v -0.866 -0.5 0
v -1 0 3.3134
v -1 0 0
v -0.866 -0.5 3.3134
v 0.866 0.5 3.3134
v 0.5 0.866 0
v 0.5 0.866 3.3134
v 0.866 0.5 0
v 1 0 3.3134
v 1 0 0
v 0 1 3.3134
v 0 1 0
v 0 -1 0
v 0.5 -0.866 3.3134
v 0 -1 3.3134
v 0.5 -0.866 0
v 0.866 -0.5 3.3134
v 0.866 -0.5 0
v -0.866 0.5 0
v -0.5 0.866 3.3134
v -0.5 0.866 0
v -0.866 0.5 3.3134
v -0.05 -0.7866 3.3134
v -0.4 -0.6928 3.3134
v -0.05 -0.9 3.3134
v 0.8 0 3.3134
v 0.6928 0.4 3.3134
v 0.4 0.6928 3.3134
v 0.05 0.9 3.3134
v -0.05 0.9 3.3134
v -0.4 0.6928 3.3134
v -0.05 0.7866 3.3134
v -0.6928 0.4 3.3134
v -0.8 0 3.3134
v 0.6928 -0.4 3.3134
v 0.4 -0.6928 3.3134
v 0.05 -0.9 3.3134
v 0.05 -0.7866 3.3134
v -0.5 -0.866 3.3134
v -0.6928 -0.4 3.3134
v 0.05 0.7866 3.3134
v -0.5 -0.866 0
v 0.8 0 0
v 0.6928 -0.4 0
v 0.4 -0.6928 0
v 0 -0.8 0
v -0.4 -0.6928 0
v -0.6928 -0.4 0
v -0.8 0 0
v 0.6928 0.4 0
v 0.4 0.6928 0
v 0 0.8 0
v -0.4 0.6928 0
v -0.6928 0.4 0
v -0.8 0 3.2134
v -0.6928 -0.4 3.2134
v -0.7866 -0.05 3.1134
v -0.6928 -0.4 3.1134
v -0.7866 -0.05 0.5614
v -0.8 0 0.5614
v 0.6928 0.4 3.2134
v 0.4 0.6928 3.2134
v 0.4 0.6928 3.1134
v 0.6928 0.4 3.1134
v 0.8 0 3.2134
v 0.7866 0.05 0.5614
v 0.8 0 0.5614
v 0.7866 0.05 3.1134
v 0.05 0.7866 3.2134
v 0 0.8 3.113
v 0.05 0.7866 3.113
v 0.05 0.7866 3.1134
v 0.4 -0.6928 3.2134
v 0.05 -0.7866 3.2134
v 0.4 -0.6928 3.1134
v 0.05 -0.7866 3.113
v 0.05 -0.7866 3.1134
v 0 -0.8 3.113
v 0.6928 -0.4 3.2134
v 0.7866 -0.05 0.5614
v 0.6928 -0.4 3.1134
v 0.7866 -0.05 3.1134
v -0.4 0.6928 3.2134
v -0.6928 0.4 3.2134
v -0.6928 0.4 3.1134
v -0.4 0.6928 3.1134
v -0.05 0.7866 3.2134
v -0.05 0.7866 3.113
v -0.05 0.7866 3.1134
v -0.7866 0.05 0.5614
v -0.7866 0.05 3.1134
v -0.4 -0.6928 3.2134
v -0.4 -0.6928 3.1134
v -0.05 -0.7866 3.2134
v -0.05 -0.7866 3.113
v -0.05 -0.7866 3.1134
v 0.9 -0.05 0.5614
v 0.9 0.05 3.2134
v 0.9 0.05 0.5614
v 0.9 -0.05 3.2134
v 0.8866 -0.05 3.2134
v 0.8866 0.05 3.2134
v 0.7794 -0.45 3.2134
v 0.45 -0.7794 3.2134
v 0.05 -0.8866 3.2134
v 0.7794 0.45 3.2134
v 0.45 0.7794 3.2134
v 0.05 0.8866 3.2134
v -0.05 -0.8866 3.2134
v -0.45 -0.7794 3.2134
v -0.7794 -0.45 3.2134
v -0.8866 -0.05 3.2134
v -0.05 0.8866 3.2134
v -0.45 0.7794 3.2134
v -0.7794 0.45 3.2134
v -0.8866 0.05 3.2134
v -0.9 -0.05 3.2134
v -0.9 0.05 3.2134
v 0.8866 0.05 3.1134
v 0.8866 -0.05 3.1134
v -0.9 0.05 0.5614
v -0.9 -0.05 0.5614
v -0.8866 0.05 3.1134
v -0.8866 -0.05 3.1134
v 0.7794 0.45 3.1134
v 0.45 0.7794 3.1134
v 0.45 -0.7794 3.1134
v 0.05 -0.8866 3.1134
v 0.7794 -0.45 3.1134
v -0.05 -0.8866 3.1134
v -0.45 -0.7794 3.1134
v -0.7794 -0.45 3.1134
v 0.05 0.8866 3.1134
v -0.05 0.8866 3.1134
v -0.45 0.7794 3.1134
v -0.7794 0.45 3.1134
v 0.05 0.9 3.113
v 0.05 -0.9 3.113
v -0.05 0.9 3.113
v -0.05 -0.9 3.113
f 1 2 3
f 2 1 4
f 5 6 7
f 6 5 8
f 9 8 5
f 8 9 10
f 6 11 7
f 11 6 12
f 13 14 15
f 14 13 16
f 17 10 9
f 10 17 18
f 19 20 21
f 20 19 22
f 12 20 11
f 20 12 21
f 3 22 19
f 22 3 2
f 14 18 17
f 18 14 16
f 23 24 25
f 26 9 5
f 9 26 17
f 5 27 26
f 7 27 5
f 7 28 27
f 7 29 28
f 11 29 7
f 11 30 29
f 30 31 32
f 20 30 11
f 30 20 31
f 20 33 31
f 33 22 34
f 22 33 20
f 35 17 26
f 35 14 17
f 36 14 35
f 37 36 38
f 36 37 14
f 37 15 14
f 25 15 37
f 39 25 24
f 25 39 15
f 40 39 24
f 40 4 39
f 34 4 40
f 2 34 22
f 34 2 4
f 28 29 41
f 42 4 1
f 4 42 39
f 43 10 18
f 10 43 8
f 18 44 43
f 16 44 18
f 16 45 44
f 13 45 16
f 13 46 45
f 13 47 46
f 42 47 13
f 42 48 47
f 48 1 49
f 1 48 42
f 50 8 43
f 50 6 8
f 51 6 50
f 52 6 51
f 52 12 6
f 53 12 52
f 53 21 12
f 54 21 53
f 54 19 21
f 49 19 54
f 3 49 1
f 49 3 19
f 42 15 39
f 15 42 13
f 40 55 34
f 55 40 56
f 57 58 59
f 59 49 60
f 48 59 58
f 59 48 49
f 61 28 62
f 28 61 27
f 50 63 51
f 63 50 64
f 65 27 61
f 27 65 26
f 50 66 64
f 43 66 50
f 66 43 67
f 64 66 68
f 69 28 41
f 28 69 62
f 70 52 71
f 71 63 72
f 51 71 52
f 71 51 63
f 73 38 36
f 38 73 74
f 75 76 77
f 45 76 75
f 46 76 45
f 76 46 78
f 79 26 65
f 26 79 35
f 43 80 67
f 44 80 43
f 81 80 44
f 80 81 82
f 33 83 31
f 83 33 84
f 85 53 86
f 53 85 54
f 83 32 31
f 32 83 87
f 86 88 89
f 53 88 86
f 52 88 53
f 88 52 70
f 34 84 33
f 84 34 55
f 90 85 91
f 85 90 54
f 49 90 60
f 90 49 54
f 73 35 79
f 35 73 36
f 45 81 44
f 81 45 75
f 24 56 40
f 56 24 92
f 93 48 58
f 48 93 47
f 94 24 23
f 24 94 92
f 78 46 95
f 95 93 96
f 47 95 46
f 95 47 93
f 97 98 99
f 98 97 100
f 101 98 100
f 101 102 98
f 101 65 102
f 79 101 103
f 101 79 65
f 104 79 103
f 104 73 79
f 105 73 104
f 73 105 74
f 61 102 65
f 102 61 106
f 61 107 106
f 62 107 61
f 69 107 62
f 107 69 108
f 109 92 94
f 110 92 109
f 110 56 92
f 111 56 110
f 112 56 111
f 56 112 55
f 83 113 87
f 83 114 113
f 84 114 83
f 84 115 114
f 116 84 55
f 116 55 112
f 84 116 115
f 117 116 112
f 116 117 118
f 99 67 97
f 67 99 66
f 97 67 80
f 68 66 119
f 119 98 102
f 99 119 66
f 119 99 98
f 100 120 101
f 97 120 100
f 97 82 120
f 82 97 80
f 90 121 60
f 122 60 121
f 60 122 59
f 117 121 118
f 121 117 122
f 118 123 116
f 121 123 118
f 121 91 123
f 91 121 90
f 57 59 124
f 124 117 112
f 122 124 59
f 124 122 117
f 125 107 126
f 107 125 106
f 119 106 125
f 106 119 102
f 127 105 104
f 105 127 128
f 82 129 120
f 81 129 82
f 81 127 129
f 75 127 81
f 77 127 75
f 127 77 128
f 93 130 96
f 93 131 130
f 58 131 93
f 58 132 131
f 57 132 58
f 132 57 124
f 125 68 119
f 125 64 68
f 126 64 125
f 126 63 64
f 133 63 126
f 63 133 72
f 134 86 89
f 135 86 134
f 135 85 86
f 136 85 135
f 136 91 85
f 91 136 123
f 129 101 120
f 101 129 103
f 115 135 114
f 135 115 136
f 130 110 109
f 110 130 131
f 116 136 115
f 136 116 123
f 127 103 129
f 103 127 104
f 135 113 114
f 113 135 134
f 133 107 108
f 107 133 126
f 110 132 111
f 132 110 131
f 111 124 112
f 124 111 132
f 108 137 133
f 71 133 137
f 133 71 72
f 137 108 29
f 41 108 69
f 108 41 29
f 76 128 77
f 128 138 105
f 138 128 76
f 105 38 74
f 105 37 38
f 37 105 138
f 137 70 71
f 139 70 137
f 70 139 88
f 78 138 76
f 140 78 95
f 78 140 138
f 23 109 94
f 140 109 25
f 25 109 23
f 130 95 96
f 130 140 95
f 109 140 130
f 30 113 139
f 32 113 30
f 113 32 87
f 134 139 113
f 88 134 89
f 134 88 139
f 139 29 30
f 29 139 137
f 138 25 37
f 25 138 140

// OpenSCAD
tolerance=0.075;
hole_radius=0.05;
grid_hole_radius=0.05;
outer_radius=1;
thickness=0.2;
hole_attach_height=0.05;
compressed_height=3.3134;
extended_height=5.8654;
next_hole_radius=0.05;
next_hole_attach_height=0.05;
next_inner=0.8;
hole_twist=0.0;
//other params
eps = tolerance/100;
rail_attach_height = grid_hole_radius + hole_attach_height;
inner_radius = outer_radius - thickness;
rail_attach_width = rail_attach_height;
fn = 12;
fnh = 6;

module angled_cylinder(angle_deg_y, _h, _r, angle_deg_x = 0) {
    rotate([angle_deg_x, angle_deg_y, 0]) { // Rotate the cylinder 
            cylinder(h = _h, r = _r, center = true, $fn = fnh);
        }
}

module hole(_h) {
    cylinder(h = _h, r = grid_hole_radius, $fn = fnh);
}

//makes circle of holes
module circular_grid(_h, _r, _n) {
    for (i = [0:_n-1]) {
        angle = i * 360 / _n;
        x_pos = _r * cos(angle);
        y_pos = _r * sin(angle);
        translate([x_pos, y_pos, -eps]) {
            hole(_h);
        }
    }
}

//makes grid of holes
module hole_grid(hole_height, grid_h) {
    translate([0,0,hole_height]) {
        difference() {
            //cylinder
            cylinder(h = grid_h, r = (inner_radius + outer_radius)/2, 
                center=false, $fn = fn);
            //holes
            for (i = [0 : grid_hole_radius * 2 + hole_attach_height : inner_radius - grid_hole_radius * 2]) {
                circular_grid(grid_h + eps*2, i, ceil(6.28*i/(grid_hole_radius*4)));
            }
            
        } 
    }
}

module bottom_joint() {
    out_hole_angle = 60;

    //grid of holes
    //hole_grid(hole_radius*2 + hole_attach_height * 2, grid_hole_radius);
   
    difference() {
        //outer cylinder
        cylinder(h=compressed_height, r= outer_radius, $fn = fn);
        
        //shell
        translate([0,0,-eps/2])
        cylinder(h=compressed_height + eps, r= inner_radius, $fn = fn);
        
        //screw holes
//        translate([0,0,hole_attach_height + hole_radius]) 
//        rotate([0,0,hole_twist]){
//            rotate([90,0,0])
//            cylinder(h=outer_radius*2 + eps,r=hole_radius,$fn=fnh,center=true);
//            rotate([0,90,0])
//            cylinder(h=outer_radius*2 + eps,r=hole_radius,$fn=fnh,center=true);
//            
//            
//        }
        
        //space between guide holes and grid
        guide_hole_space = grid_hole_radius;
        //guide holes
//        translate([-grid_hole_radius*cos(out_hole_angle) + inner_radius,0,hole_attach_height*2 + hole_radius*2 + grid_hole_radius + grid_hole_radius*sin(out_hole_angle) + guide_hole_space])
//                rotate([0,out_hole_angle,0])
//                cylinder(h=thickness/sin(out_hole_angle) + grid_hole_radius*2/tan(out_hole_angle), r=grid_hole_radius, $fn = fnh);
//        
//        translate([grid_hole_radius*cos(out_hole_angle) - inner_radius,0,hole_attach_height*2 + hole_radius*2 + grid_hole_radius + grid_hole_radius*sin(out_hole_angle) + guide_hole_space])
//                rotate([0,-out_hole_angle,0])
//                cylinder(h=thickness/sin(out_hole_angle) + grid_hole_radius*2/tan(out_hole_angle), r=grid_hole_radius, $fn = fnh);
        
        //for future reference of minimum joint size
        guide_height = hole_attach_height*2 + hole_radius*2 + grid_hole_radius + grid_hole_radius*2/sin(out_hole_angle) + thickness/tan(out_hole_angle) + guide_hole_space;
        
        //track
        rail_height = rail_attach_height + extended_height - compressed_height;
        translate([inner_radius,0,compressed_height - rail_height/2 - rail_attach_height])
            cube([thickness,rail_attach_width,rail_height],center = true);
        
        translate([-inner_radius,0,compressed_height - rail_height/2 - rail_attach_height])
            cube([thickness,rail_attach_width,rail_height],center = true);
        
        translate([0,0,compressed_height - rail_attach_height*2])
        cylinder(h=rail_attach_height,r=inner_radius + thickness/2,$fn=fn);
        
        //insert to track
        translate([0,0,compressed_height - rail_attach_height])
        cube([rail_attach_width, inner_radius*2 + thickness, rail_attach_height*2 + eps],center=true);
        
        //groove for string to slide through
//        translate([0,0,compressed_height])
//        rotate([0,90,0])
//        cylinder(h=outer_radius*2 + eps, r=grid_hole_radius,center=true, $fn=fnh);
    }
    
}

bottom_joint();
